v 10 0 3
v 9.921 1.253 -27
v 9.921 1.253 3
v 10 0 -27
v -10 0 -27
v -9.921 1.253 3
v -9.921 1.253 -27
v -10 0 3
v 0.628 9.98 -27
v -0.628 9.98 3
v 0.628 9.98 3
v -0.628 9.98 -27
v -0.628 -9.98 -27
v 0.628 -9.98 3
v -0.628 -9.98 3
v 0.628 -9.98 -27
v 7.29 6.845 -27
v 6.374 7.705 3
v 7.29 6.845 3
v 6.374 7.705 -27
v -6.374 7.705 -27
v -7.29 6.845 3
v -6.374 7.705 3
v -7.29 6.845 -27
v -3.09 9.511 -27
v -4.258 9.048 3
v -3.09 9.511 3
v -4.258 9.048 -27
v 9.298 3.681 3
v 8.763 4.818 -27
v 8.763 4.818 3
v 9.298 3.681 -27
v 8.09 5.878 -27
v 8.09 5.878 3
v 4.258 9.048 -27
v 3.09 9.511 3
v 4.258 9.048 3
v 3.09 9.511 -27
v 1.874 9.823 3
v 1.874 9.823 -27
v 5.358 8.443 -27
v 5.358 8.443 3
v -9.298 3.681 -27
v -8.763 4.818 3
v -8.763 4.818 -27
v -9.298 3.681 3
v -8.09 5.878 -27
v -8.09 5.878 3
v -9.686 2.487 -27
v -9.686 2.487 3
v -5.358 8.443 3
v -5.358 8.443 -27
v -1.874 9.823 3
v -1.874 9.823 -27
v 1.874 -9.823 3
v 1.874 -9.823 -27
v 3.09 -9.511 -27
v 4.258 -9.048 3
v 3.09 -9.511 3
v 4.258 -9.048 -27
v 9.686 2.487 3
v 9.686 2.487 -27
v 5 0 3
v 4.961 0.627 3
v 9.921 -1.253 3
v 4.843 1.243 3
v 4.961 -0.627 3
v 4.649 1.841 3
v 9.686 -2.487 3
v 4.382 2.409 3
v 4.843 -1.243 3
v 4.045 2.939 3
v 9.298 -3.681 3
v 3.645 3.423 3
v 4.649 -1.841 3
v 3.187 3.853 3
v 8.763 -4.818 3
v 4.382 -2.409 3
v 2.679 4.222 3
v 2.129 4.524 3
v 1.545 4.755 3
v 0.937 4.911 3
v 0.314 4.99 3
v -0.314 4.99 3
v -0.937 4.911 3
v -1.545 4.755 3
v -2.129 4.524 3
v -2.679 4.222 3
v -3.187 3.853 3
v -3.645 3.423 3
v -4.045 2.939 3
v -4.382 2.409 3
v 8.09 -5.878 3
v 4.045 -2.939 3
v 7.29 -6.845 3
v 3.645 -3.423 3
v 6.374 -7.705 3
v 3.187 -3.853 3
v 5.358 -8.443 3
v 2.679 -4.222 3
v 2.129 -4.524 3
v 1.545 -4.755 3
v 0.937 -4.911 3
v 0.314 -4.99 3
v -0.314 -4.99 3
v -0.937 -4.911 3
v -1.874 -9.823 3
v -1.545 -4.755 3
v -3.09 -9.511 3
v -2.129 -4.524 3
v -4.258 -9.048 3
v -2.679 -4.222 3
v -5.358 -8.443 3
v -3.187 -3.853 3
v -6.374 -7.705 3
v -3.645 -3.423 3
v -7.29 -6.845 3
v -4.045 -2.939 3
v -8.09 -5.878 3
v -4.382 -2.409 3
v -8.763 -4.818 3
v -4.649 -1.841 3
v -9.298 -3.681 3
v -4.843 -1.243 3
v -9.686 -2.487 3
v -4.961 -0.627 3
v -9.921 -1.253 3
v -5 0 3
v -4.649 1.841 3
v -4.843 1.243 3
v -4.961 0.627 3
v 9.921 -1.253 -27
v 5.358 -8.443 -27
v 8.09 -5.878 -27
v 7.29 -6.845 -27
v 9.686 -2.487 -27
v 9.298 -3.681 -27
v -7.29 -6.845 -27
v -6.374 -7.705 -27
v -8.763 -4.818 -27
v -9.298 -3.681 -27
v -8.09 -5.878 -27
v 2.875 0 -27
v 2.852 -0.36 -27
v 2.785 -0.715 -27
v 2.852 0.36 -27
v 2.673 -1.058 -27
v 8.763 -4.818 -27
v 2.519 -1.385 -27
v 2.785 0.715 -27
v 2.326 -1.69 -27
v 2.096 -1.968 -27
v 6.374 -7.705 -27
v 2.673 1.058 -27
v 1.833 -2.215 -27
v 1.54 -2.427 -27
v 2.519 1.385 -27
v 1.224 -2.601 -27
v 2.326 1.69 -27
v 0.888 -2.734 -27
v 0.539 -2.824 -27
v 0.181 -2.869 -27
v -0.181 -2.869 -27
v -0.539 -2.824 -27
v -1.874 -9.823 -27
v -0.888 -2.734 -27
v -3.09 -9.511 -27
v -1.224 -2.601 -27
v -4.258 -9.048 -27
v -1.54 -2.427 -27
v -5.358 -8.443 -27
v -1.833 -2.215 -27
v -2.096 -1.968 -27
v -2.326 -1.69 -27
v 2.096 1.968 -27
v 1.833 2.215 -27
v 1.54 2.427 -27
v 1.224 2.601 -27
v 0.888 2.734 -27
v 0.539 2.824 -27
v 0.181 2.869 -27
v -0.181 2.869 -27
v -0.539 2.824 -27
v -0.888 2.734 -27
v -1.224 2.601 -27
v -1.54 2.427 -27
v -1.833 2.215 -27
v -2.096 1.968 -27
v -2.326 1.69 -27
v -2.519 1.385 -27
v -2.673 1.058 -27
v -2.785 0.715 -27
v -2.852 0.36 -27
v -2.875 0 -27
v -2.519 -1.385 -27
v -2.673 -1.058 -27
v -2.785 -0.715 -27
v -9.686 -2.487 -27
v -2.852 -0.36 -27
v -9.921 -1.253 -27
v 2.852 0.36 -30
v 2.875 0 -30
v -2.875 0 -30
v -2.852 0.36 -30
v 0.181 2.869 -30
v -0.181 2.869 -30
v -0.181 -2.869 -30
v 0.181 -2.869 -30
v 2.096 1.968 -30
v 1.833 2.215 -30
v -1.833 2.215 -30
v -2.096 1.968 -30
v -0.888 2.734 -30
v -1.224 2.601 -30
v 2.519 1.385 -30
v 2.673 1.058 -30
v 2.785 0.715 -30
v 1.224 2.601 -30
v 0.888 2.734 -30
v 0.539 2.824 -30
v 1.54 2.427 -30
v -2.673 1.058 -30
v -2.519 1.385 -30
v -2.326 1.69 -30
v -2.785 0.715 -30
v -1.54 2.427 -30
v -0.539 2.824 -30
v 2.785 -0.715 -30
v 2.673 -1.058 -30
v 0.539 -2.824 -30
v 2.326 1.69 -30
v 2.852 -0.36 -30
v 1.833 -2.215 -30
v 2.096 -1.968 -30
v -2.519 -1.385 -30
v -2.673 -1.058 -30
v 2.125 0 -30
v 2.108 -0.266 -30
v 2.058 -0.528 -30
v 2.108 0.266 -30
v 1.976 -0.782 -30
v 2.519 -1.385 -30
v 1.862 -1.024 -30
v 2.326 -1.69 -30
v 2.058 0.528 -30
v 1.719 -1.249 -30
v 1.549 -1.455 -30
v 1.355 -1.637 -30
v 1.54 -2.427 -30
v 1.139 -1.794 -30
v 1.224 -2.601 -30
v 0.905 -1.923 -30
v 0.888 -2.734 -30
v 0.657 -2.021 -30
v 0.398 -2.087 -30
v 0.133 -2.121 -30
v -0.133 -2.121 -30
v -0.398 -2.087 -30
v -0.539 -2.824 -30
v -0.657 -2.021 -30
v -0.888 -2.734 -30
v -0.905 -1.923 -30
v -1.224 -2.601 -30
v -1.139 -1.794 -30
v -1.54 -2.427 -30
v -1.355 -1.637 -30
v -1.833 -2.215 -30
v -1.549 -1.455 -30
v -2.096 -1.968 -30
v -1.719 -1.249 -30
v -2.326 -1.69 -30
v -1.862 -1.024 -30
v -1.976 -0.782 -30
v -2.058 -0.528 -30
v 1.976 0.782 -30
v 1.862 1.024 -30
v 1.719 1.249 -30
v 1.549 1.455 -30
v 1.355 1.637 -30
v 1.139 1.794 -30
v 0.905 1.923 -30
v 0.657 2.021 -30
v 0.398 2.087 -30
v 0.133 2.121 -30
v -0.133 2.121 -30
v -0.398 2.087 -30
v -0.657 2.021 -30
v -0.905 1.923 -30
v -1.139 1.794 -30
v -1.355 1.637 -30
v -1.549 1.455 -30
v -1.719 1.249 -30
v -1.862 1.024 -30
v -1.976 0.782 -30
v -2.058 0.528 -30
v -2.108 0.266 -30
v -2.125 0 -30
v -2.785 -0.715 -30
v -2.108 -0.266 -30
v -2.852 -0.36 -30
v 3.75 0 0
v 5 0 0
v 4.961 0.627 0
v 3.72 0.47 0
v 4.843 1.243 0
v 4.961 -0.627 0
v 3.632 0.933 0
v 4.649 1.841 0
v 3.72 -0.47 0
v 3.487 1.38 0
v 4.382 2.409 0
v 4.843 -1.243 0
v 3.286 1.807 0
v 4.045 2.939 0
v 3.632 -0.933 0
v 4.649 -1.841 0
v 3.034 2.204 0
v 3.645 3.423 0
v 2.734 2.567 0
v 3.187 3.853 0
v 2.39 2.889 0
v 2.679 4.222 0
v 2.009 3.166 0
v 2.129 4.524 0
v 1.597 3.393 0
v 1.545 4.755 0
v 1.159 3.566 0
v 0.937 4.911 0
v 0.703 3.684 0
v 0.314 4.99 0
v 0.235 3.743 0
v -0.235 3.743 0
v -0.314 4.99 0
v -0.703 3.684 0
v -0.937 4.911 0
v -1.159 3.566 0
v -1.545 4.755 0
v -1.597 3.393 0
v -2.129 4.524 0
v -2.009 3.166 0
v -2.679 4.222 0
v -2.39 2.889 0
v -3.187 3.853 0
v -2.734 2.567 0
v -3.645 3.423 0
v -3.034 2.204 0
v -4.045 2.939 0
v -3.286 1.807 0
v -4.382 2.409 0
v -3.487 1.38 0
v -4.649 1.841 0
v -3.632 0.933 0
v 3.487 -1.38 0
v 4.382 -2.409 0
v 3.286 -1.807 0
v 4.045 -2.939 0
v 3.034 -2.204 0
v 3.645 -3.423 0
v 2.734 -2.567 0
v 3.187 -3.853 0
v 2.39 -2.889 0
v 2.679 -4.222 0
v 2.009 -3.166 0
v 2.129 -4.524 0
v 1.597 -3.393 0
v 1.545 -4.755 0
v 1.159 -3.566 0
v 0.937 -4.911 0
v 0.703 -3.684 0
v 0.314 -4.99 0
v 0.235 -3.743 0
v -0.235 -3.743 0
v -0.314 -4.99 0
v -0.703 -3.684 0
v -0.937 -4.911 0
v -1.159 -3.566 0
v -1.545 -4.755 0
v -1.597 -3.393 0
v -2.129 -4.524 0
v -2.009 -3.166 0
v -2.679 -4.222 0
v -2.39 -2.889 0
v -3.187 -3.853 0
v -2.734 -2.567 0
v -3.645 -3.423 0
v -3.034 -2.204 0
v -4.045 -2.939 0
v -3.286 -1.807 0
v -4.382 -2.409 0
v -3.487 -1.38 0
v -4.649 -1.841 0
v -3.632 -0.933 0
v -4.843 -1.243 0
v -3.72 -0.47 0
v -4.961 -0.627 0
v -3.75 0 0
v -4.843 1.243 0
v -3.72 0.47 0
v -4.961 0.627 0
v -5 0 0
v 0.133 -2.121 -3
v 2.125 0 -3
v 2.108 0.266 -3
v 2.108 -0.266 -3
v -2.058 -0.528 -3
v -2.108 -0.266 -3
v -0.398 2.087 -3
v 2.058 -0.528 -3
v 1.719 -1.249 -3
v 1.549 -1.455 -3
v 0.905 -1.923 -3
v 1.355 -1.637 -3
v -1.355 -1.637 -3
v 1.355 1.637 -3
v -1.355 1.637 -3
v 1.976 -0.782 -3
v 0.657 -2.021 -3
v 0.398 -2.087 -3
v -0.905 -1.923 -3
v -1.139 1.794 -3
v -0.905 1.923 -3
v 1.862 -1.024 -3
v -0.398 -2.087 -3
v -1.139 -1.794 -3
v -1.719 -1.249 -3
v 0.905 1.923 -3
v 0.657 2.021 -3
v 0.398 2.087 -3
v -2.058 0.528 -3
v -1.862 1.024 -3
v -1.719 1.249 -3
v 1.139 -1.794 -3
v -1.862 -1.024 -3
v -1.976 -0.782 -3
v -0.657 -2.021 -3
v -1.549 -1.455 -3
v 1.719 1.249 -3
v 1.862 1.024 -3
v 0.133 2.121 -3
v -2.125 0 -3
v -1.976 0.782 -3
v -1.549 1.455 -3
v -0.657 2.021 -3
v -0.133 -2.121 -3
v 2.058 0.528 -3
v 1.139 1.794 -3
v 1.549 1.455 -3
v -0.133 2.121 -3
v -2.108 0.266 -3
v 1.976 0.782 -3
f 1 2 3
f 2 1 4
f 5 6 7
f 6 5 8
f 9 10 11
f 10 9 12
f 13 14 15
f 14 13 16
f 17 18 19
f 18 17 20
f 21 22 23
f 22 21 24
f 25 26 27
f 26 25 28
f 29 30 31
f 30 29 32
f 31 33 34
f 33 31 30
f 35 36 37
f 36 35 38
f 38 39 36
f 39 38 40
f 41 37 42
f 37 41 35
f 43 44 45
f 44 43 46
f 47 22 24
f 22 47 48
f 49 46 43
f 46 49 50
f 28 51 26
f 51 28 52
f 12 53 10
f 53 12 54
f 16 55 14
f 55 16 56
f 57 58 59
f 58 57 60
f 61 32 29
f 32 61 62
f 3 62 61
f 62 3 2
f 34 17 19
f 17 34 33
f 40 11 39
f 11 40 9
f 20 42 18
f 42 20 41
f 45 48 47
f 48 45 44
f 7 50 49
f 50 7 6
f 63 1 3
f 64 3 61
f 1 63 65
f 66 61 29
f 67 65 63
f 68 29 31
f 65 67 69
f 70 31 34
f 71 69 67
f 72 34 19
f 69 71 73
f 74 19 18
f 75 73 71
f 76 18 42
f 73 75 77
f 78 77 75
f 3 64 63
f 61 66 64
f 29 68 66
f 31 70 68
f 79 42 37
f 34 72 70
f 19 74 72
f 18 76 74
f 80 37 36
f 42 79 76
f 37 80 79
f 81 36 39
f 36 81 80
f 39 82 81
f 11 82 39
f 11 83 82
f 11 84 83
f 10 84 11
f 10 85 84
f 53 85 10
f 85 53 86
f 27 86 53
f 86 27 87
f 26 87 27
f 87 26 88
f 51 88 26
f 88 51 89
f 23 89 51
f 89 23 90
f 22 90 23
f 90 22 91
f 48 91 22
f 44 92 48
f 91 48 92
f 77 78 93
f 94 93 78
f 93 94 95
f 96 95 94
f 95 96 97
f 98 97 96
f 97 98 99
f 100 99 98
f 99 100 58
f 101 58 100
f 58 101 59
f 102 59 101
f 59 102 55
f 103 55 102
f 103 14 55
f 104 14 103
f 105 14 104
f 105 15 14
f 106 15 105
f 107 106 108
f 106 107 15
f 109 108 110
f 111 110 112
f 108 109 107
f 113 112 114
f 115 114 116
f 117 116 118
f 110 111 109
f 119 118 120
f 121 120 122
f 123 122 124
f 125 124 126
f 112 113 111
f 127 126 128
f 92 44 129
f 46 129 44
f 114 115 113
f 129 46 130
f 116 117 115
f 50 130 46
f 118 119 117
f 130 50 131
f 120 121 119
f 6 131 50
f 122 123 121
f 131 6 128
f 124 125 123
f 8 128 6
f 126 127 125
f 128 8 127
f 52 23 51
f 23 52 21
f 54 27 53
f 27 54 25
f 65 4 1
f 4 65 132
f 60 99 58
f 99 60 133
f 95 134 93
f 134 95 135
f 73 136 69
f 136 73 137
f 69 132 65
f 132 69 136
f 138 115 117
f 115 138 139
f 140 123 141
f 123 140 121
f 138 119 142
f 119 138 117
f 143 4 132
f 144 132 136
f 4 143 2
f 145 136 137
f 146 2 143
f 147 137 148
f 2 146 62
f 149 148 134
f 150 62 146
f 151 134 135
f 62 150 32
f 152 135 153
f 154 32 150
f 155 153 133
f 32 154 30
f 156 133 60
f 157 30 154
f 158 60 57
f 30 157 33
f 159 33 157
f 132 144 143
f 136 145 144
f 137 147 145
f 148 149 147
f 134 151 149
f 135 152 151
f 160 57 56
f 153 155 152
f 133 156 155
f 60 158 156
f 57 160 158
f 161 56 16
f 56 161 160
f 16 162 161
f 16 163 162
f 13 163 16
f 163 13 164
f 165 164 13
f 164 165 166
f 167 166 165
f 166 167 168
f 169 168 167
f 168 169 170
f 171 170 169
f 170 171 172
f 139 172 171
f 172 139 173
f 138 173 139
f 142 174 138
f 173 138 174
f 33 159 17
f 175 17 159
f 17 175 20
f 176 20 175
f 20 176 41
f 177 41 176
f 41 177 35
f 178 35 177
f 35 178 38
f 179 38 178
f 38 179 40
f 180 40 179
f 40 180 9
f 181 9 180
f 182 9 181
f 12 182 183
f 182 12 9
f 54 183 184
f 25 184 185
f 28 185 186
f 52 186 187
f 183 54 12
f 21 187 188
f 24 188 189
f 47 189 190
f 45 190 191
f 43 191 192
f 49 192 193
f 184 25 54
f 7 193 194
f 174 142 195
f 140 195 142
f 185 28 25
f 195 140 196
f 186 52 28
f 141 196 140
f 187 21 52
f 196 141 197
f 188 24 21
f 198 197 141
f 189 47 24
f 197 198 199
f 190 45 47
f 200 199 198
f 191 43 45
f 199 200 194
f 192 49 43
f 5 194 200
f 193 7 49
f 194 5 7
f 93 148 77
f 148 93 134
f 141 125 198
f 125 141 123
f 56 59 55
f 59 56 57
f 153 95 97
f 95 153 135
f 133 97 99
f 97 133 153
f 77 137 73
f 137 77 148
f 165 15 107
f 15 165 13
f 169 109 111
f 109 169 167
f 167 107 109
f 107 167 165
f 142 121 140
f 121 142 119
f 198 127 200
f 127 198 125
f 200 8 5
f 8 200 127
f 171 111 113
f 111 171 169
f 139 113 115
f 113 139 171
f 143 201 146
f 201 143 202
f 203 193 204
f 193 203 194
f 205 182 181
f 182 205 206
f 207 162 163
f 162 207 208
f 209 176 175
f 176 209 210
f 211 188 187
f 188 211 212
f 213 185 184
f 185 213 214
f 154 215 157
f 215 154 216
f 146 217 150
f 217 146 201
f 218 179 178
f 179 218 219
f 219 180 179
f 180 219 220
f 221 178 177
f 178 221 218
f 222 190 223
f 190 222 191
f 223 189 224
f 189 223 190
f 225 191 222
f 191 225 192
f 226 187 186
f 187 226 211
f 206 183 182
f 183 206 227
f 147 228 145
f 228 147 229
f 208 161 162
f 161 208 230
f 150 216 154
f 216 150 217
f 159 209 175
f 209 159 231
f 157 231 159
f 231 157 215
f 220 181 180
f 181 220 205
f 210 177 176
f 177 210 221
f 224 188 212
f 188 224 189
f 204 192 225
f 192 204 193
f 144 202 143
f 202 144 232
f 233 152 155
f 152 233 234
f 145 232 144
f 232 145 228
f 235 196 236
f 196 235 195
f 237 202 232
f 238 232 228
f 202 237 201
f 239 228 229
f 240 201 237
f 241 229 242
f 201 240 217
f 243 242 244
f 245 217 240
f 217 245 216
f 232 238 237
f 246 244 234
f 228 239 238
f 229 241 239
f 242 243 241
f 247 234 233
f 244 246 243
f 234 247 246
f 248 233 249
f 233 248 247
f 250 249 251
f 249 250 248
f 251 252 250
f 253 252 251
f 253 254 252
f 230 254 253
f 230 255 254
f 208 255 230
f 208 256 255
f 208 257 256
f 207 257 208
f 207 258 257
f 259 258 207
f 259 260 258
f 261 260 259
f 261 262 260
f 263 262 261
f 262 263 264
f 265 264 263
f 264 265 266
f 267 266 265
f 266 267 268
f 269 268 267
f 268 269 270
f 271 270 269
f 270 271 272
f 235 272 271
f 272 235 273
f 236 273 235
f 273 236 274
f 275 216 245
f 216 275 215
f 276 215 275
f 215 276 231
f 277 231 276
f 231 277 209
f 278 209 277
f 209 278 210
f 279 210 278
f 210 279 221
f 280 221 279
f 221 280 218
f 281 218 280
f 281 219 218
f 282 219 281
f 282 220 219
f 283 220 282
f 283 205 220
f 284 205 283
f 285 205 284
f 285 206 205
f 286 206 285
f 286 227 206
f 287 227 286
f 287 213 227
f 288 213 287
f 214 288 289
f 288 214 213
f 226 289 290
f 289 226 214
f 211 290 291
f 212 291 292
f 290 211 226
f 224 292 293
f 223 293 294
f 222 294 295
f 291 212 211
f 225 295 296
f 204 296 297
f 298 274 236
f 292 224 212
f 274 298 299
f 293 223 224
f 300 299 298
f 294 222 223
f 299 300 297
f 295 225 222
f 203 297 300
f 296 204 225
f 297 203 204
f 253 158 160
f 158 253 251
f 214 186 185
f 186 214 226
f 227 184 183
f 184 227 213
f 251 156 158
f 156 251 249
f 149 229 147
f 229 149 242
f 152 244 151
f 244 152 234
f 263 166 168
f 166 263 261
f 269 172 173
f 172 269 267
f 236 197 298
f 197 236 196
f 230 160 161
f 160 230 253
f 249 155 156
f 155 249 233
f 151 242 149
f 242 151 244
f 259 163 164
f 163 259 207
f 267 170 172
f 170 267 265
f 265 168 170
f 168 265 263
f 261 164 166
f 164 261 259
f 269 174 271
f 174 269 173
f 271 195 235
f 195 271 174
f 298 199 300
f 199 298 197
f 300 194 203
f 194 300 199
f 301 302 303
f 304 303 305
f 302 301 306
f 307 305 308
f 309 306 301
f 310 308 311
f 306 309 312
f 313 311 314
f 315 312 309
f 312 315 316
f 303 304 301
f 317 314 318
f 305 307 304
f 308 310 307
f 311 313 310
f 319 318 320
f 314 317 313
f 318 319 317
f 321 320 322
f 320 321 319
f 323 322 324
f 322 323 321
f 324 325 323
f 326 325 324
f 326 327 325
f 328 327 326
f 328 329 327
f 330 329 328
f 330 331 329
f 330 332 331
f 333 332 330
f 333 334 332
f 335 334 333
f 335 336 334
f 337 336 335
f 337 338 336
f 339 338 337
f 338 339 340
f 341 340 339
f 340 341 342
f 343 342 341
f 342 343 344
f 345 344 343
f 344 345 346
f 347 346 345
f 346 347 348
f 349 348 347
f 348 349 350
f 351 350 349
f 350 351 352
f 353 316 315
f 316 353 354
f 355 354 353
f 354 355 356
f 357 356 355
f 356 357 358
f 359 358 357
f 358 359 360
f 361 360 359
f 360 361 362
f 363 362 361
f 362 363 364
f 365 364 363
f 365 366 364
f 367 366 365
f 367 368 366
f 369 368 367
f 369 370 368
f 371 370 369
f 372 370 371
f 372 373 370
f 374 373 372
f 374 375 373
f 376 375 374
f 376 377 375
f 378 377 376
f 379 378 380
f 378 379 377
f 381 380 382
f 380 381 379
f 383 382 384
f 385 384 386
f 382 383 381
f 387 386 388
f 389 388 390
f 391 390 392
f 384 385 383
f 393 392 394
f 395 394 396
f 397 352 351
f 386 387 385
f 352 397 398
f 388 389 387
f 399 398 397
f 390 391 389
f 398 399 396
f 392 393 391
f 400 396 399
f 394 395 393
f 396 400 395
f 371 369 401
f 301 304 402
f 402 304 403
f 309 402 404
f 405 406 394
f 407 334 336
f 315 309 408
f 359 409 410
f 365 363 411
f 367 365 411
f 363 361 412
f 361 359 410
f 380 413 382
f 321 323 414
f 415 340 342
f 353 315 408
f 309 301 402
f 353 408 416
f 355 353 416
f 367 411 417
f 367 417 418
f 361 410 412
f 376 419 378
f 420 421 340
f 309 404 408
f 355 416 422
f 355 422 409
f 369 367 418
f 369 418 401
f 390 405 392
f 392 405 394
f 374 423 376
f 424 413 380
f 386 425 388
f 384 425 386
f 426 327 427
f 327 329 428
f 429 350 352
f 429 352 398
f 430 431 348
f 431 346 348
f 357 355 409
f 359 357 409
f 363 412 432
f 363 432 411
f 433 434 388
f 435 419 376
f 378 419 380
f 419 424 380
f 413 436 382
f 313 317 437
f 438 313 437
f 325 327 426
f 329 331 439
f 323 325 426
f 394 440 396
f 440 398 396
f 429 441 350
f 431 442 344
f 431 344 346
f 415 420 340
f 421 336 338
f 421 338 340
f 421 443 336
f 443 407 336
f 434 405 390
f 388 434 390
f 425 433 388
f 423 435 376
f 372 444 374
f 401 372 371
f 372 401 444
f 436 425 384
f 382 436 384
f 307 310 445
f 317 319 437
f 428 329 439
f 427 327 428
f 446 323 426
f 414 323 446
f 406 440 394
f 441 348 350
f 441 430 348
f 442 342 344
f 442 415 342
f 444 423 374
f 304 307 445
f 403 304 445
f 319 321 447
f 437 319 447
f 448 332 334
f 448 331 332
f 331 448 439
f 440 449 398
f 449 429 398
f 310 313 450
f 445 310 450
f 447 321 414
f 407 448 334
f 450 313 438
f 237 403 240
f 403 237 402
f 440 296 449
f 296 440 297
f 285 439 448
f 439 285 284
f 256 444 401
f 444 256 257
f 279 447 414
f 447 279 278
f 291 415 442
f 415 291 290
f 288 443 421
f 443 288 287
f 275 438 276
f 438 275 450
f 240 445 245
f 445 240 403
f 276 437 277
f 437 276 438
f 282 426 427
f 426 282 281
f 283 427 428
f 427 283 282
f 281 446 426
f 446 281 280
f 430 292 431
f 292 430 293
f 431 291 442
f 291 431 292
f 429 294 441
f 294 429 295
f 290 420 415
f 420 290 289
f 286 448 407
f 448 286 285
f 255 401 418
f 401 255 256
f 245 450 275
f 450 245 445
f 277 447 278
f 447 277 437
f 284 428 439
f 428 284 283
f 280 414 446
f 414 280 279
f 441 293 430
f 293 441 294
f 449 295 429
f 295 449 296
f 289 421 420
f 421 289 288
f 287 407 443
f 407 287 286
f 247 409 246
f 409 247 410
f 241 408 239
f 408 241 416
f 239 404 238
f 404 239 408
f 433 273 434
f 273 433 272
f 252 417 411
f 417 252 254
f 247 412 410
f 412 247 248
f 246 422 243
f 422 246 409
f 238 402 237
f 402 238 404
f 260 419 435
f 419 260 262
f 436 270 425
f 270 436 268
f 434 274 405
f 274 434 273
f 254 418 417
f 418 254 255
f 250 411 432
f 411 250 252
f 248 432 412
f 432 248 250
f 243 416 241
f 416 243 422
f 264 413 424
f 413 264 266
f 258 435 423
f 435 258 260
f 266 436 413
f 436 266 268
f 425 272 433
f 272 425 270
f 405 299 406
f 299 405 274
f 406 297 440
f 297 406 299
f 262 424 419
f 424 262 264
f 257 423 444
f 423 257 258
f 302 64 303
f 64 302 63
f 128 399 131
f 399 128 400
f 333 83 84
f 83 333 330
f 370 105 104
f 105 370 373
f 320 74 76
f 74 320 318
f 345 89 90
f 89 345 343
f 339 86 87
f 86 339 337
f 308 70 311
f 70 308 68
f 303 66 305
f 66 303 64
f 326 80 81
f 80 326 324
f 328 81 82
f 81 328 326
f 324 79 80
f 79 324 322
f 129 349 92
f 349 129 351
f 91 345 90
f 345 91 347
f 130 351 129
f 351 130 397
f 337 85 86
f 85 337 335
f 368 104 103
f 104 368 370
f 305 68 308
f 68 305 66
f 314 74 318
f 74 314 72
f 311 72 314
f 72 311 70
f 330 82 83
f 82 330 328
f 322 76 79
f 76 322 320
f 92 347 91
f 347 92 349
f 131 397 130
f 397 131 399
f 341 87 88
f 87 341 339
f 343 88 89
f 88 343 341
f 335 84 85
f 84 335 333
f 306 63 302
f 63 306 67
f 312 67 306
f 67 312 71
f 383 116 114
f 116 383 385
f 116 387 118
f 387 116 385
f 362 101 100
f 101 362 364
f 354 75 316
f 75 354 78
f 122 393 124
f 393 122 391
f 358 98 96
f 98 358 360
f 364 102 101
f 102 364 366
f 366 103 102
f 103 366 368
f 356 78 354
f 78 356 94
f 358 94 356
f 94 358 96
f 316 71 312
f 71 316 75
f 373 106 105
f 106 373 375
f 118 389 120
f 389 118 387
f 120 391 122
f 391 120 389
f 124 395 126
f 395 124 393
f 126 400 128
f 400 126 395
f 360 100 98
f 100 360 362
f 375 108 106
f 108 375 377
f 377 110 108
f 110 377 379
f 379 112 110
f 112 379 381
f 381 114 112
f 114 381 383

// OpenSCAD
$fn = 50;

difference() {
	union() {
		translate(v = [0, 0, -27.0]) {
			cylinder(h = 30, r = 10.0);
		}
		#translate(v = [0, 0, -30.0]) {
			cylinder(h = 30, r = 2.875);
		}
	}
	union() {
		translate(v = [0, 0, 0]) {
			rotate(a = [0, 0, 0]) {
				difference() {
					union() {
						translate(v = [0, 0, -30.0]) {
							cylinder(h = 30, r = 2.0);
						}
						translate(v = [0, 0, -3]) {
							cylinder(h = 3, r1 = 2.125, r2 = 3.75);
						}
						translate(v = [0, 0, -30.0]) {
							cylinder(h = 30, r = 2.125);
						}
						translate(v = [0, 0, -30.0]) {
							cylinder(h = 30, r = 2.0);
						}
					}
					union();
				}
			}
		}
		#cylinder(h = 3, r = 5.0);
	}
}
